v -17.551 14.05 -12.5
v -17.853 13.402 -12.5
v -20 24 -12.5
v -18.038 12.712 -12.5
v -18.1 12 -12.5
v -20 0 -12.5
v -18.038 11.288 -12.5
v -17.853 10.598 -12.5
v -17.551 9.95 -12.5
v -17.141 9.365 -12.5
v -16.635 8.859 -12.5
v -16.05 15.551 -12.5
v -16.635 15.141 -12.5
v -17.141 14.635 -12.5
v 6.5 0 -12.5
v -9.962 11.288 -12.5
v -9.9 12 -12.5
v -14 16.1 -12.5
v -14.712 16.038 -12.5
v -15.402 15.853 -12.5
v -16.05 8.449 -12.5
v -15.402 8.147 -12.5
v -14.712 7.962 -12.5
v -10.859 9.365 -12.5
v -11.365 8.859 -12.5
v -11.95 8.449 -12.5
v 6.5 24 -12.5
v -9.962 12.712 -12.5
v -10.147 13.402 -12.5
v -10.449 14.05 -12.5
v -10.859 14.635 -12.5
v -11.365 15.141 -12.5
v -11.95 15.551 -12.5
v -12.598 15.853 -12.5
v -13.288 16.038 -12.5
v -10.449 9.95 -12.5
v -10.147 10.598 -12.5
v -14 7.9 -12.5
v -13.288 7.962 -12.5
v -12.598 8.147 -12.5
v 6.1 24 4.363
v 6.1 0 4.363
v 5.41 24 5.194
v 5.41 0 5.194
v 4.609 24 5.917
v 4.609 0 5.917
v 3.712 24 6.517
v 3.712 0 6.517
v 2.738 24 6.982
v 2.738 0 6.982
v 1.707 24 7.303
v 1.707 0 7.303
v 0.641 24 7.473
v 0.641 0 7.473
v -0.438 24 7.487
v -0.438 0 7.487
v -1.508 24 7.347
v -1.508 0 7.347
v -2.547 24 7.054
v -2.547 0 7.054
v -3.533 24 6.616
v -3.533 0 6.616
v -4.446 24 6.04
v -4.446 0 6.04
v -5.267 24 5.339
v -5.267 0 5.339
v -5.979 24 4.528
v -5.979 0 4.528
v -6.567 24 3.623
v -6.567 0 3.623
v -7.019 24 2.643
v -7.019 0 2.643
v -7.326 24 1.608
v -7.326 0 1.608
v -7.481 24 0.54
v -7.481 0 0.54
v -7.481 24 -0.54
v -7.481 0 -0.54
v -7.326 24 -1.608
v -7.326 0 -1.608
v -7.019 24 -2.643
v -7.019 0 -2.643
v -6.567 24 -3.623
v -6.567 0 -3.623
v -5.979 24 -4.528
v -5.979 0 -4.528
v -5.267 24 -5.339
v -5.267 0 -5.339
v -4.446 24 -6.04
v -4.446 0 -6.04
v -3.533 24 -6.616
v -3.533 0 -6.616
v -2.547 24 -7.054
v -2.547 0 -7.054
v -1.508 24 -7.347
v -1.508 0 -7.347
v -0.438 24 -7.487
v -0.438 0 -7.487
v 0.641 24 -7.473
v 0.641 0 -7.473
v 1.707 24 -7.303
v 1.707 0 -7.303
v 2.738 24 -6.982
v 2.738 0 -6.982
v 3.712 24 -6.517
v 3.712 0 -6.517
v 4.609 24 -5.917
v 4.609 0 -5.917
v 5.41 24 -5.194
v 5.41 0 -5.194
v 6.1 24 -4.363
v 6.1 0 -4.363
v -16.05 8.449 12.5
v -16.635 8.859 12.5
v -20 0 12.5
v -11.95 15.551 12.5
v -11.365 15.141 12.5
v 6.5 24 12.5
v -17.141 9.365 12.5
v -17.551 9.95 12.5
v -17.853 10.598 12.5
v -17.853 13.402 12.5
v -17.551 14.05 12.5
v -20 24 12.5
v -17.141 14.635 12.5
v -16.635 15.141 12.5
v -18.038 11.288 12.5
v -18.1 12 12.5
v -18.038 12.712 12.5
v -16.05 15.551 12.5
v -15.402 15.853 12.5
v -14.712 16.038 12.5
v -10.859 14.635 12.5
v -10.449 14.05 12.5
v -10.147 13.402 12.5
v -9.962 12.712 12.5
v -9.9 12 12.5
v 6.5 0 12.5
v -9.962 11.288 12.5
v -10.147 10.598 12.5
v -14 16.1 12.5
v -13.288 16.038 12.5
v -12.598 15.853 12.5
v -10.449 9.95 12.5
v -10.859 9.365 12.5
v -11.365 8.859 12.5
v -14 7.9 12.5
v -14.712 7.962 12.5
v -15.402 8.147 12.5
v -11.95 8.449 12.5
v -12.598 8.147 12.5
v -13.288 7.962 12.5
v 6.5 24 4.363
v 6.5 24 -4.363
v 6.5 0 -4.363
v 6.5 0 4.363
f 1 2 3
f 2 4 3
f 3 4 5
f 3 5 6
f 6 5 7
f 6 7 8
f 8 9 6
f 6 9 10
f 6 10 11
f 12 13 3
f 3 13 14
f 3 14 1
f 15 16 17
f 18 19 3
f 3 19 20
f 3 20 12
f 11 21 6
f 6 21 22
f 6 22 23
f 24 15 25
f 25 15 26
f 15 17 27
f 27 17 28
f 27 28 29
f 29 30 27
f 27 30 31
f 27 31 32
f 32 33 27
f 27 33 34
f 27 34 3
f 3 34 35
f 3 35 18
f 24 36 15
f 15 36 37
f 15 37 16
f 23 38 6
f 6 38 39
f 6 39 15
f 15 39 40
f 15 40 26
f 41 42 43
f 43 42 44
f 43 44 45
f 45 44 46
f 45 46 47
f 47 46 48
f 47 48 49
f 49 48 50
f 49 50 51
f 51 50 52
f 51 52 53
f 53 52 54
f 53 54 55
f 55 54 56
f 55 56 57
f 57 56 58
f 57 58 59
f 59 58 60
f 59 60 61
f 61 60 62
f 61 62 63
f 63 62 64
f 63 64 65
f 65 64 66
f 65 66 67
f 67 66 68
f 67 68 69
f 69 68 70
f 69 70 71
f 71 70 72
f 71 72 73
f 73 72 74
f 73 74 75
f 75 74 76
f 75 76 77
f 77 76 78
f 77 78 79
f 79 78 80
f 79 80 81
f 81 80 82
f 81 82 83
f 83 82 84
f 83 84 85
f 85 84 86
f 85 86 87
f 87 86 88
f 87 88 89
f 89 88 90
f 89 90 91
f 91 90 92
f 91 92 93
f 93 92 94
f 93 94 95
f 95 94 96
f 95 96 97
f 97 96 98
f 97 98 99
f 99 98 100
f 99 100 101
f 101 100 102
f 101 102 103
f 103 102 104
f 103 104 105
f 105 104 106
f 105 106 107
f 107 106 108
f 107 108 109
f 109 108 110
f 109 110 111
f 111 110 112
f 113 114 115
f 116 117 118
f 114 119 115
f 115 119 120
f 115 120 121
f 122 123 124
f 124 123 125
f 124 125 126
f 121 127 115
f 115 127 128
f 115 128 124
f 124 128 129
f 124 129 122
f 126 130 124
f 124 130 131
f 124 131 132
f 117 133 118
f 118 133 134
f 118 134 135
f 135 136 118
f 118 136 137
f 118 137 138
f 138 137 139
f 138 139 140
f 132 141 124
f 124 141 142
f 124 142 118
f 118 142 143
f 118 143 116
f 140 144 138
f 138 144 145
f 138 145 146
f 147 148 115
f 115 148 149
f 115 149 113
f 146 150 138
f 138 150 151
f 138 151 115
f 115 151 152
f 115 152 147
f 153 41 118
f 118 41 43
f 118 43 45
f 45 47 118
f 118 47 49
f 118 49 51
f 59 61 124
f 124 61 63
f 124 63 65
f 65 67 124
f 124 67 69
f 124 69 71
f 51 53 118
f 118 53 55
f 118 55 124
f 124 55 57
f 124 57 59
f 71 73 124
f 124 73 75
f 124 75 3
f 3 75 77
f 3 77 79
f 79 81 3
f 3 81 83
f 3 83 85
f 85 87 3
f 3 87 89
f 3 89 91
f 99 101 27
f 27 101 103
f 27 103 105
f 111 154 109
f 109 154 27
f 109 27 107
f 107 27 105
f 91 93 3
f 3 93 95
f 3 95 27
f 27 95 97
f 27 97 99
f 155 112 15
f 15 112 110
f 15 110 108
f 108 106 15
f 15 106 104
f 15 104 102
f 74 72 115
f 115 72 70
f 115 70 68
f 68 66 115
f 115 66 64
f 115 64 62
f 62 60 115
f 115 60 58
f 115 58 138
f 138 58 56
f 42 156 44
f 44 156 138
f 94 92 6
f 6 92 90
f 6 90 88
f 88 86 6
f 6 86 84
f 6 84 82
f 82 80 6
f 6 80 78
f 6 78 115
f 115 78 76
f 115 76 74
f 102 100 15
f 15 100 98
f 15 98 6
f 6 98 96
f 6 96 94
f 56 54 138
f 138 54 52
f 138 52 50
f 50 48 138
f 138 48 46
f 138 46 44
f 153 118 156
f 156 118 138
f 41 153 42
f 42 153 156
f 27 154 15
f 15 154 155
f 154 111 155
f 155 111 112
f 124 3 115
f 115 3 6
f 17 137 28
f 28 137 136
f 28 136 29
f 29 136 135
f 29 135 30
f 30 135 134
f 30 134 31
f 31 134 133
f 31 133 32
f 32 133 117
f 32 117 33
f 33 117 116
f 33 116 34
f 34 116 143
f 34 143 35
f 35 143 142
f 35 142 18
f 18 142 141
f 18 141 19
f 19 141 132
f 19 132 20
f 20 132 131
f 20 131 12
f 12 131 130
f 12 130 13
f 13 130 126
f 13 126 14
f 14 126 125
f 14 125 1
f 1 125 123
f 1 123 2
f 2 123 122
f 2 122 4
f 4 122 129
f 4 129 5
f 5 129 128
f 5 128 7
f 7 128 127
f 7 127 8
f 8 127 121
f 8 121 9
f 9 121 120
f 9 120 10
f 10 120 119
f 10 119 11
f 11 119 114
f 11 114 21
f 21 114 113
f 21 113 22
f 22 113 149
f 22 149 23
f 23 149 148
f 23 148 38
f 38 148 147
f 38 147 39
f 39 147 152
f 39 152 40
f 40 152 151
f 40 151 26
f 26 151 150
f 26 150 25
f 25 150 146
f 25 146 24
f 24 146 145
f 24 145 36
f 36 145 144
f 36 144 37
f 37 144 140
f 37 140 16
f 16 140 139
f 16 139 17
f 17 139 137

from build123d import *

# Parameters (mm, degrees)
SKETCH1_W           = 22.5
SKETCH1_H           = 25
SKETCH1_R           = 7.5
BOSS_EXTRUDE1_DEPTH = 24
CUT_EXTRUDE4_DEPTH  = 30.807717122
SKETCH7_W           = 10
SKETCH7_H           = 25
BOSS_EXTRUDE2_DEPTH = 24
SKETCH8_R           = 4.1
CUT_EXTRUDE5_DEPTH  = 48


with BuildPart() as part:
    # Sketch1 → Boss-Extrude1 (new body)
    with BuildSketch(Plane(origin=(0, 0, 0), x_dir=(1, 0, 0), z_dir=(0, 1, 0))):
        with Locations((1.25, 0)):
            Rectangle(SKETCH1_W, SKETCH1_H)
        with Locations(Location((0, 0, 0), (0, 0, 270))):
            Circle(SKETCH1_R, mode=Mode.SUBTRACT)
    extrude(amount=BOSS_EXTRUDE1_DEPTH)

    # Sketch5 → Cut-Extrude4 (cut, through all)
    with BuildSketch(Plane.XZ):
        Polygon((12.5, 12.5), (6.5, 12.5), (6.5, 4.363484846), (6.1, 4.363484846), (6.1, -4.363484846), (6.5, -4.363484846), (6.5, -12.5), (12.5, -12.5), align=None)
    extrude(amount=-CUT_EXTRUDE4_DEPTH, mode=Mode.SUBTRACT)

    # Sketch7 → Boss-Extrude2 (add)
    with BuildSketch(Plane.XZ):
        with Locations((-15, 0)):
            Rectangle(SKETCH7_W, SKETCH7_H)
    extrude(amount=-BOSS_EXTRUDE2_DEPTH)

    # Sketch8 → Cut-Extrude5 (cut)
    with BuildSketch(Plane.XY.offset(12.5)):
        with Locations((-14, 12)):
            Circle(SKETCH8_R)
    extrude(amount=-CUT_EXTRUDE5_DEPTH, mode=Mode.SUBTRACT)


solid = part.part
